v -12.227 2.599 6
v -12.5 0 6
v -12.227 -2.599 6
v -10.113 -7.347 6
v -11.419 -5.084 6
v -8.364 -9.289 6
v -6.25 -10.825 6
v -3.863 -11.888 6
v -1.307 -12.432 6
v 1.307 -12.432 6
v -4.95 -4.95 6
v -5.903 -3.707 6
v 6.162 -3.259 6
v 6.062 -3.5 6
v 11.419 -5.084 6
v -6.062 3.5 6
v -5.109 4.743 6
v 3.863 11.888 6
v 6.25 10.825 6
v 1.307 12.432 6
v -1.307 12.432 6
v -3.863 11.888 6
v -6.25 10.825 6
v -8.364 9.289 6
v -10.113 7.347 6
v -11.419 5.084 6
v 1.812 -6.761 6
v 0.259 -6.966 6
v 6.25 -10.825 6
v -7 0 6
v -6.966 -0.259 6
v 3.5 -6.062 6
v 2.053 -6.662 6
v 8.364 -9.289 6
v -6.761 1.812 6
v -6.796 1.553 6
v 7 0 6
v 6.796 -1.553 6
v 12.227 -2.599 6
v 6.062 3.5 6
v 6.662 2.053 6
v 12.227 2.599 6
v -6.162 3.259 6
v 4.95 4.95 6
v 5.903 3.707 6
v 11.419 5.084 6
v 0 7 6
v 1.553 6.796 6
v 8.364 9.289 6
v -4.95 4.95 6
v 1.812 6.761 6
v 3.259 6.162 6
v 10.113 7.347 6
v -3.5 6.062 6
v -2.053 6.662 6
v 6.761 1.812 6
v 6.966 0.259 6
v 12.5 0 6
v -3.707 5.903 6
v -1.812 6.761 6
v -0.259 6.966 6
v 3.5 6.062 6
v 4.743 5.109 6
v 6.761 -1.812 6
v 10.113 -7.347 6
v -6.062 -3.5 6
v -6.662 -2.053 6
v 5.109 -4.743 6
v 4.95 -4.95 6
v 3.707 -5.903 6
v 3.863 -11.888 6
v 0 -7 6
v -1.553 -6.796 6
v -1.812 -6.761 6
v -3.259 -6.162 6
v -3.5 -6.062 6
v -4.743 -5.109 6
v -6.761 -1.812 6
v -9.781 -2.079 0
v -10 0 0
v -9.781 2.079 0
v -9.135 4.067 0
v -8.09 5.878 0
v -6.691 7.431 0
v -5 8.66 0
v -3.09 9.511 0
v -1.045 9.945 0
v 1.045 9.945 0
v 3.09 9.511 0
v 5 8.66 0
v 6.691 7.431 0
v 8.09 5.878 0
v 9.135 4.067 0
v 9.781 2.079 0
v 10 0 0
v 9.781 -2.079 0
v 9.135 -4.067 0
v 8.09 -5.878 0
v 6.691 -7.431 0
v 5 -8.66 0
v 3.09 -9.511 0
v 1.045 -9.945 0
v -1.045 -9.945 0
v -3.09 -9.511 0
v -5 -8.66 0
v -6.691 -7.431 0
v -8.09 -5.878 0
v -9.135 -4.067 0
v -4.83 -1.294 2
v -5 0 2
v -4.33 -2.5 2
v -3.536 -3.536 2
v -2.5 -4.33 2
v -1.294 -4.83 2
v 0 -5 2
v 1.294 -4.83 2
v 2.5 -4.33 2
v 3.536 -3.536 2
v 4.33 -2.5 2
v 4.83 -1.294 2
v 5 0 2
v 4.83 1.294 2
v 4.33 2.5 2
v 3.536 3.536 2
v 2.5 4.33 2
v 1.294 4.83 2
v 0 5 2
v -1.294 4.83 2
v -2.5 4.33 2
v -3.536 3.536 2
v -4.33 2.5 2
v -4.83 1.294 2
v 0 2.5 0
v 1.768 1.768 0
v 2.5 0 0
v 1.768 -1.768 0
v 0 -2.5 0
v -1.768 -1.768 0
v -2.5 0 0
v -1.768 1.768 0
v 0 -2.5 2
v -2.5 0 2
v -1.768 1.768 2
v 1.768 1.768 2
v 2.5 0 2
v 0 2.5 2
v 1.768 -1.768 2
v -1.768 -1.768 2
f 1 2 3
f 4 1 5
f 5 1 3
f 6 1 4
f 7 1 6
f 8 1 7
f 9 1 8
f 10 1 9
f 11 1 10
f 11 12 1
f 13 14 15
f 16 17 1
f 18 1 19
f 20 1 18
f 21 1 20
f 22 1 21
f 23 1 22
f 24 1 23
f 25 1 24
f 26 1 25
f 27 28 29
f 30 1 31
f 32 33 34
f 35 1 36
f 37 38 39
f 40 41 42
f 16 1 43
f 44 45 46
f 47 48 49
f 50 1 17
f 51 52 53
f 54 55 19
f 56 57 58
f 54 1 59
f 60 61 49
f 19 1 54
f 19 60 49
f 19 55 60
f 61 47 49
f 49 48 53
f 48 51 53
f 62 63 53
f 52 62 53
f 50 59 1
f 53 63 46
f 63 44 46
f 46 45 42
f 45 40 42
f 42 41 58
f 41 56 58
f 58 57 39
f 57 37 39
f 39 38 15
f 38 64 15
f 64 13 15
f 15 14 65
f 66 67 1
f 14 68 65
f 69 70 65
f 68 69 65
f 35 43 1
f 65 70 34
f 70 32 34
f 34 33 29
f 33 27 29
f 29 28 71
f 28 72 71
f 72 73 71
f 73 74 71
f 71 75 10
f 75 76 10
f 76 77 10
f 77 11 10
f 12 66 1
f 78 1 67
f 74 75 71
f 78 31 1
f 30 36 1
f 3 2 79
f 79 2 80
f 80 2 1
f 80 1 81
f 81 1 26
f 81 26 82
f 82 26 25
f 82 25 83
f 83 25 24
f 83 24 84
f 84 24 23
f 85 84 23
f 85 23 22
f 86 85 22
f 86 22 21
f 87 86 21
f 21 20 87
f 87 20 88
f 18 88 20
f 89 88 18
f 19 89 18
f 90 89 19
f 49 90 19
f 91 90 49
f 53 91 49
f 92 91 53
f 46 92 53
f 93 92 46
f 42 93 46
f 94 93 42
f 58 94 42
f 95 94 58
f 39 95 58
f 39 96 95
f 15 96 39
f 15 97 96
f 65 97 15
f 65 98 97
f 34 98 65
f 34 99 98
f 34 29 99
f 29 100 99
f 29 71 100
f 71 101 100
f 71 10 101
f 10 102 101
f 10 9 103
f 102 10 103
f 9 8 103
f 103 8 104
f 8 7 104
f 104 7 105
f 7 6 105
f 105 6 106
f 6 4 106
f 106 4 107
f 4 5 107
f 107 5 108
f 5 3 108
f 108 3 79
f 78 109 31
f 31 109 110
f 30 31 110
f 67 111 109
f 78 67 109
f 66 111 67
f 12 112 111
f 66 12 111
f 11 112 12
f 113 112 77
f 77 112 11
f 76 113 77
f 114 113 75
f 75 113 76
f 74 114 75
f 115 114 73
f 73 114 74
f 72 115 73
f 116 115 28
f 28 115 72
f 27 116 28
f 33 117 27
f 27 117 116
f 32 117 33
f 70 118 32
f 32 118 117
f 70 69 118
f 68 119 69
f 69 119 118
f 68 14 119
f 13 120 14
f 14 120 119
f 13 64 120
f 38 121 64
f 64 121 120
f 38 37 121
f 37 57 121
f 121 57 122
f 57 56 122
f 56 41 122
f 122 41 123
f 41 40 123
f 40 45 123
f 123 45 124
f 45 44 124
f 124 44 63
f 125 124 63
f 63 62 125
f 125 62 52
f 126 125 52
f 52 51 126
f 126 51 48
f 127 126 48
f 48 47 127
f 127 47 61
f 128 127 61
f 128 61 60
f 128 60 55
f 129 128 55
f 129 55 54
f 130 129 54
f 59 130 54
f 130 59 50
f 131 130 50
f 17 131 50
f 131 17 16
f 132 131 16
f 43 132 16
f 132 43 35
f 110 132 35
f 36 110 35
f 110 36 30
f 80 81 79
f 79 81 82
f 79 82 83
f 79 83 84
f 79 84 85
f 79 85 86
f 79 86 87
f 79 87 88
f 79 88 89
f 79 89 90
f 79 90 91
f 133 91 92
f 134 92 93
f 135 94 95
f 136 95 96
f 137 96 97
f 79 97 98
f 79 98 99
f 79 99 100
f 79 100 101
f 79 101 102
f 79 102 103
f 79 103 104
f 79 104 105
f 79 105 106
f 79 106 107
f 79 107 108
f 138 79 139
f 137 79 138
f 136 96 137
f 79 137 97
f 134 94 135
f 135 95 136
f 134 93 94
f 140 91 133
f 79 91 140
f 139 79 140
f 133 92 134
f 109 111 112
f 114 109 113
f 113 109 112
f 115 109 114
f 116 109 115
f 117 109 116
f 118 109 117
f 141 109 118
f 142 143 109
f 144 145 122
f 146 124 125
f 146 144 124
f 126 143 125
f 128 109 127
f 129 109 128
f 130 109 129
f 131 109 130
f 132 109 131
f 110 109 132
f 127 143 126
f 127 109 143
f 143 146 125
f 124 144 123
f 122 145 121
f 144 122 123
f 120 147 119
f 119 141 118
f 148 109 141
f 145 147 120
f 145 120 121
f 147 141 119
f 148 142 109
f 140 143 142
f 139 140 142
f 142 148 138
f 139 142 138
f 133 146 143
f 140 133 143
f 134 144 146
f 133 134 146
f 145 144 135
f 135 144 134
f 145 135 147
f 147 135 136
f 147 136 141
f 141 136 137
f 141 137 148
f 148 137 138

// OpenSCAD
module foot (height=20, diameter_top=20, hole_diameter=5)
{
	diameter_btm = diameter_top + 5;
	difference ()
	{
		cylinder (h=height, r1=diameter_top/2, r2=diameter_btm/2);
		translate([0,0,-0.5]) cylinder (h=height+3, r=hole_diameter/2);
		translate([0,0,2]) cylinder (h=height-1, r1=5, r2=(10+diameter_btm-diameter_top)/2);
	}
}

foot(height=6, diameter_top=20);
